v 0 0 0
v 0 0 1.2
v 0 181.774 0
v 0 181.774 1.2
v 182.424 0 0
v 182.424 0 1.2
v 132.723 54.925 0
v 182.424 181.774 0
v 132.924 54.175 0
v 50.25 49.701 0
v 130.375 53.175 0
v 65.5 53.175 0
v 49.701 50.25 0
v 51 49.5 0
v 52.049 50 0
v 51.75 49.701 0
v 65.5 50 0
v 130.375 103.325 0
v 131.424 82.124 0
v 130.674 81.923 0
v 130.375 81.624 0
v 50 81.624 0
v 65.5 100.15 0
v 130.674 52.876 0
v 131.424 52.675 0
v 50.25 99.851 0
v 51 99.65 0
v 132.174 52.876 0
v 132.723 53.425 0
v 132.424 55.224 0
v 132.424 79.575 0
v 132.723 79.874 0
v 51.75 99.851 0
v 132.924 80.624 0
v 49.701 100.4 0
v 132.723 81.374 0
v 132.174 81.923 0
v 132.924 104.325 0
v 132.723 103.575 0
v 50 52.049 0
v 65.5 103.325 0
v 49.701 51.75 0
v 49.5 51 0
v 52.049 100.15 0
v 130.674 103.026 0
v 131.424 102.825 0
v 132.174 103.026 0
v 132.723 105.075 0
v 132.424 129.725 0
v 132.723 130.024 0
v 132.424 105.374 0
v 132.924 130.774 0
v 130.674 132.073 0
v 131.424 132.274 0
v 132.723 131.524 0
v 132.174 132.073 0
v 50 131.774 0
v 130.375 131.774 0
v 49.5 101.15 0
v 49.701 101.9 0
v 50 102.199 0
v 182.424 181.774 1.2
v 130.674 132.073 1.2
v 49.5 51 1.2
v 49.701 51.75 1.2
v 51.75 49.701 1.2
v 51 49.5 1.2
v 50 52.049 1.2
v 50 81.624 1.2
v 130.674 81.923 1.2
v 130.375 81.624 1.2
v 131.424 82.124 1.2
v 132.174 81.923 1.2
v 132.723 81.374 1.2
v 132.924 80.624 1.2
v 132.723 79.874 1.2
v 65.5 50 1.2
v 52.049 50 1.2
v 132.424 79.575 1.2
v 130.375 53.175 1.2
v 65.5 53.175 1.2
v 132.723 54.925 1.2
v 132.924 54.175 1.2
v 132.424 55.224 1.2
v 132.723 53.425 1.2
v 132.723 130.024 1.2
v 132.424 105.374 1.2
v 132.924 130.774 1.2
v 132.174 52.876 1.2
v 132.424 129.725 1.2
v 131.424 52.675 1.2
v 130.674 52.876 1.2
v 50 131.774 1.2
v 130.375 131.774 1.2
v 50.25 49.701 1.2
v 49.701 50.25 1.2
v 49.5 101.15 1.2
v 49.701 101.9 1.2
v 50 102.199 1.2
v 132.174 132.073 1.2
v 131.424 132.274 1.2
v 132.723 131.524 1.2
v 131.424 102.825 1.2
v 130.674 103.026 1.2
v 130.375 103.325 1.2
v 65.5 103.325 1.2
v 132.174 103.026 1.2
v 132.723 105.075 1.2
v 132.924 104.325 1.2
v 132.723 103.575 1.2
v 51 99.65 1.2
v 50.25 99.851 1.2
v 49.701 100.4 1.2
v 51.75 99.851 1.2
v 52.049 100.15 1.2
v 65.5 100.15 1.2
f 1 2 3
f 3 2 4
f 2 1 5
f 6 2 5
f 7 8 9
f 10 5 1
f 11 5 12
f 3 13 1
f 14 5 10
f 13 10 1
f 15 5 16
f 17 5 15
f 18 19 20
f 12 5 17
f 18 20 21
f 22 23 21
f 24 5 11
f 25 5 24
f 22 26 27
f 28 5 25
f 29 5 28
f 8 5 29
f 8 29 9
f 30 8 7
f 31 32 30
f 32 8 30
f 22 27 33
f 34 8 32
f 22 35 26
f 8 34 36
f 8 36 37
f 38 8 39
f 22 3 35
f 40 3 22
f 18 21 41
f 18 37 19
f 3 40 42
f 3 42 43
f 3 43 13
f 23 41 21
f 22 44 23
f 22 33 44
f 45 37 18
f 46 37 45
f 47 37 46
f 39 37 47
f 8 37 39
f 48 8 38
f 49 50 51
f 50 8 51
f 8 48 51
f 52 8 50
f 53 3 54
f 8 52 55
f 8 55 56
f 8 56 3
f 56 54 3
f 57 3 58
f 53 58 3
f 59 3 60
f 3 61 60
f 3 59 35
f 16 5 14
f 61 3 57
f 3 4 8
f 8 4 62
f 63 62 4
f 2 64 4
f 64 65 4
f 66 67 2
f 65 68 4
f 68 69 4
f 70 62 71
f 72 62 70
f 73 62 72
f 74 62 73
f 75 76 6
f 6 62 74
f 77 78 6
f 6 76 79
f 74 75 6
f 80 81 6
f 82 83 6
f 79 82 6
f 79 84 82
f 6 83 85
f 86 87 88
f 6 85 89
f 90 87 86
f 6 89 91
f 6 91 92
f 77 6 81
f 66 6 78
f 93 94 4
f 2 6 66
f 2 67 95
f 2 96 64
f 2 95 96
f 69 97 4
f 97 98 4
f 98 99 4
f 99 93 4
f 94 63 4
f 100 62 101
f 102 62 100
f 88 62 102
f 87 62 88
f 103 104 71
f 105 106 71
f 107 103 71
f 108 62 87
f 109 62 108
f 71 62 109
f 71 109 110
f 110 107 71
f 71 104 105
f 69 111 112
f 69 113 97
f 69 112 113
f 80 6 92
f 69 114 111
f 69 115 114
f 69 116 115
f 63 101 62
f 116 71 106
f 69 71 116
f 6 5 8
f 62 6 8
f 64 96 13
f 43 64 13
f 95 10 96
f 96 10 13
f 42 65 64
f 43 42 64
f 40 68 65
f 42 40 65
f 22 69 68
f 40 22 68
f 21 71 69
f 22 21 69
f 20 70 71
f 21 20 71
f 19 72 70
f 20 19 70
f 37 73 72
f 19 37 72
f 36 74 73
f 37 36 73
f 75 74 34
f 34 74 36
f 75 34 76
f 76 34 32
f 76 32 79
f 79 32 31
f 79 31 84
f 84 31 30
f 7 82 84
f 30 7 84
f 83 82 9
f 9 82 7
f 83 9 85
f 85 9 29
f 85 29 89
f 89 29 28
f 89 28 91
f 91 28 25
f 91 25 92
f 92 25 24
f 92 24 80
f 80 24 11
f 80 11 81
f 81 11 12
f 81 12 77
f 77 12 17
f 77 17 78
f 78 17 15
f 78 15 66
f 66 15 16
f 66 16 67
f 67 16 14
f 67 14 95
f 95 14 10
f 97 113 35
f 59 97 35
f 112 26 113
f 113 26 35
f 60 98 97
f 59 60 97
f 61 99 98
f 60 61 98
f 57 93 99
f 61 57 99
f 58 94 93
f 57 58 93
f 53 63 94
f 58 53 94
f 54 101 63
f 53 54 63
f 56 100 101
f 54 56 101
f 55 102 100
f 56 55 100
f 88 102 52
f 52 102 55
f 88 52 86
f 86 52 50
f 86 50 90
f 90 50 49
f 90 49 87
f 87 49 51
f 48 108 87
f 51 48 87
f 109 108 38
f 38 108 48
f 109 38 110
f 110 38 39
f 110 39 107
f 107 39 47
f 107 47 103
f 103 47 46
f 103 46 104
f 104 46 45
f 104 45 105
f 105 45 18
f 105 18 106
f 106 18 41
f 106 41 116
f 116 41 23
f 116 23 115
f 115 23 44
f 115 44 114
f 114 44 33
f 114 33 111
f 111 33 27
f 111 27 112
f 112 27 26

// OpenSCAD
// Holder for Ormerod prototype differential IR sensor board

thickness=1.2;
xborder=50;
yborder=50;
yrepeat=50.15;	// 1st stencil measured 50.15, frame printed @50mm measured 49.80
height=82.07375;
width=28.09875;
nibWidth=3.175;
nibHeight=15.5;	//actually 14.605
clearance=0.35;
cornerRadius=1.5;
cornerOffset=1;
overlap=1;

module wedge(x,y,z)
{
	polyhedron(
		points=[[0,0,0],[x,0,0],[0,y,0],[0,0,z],[x,0,z],[0,y,z]],
		faces=[[0,2,1],[3,4,5],[0,1,3],[1,4,3],[1,2,4],[2,5,4],[0,3,2],[5,2,3]]
	);
}

module boardCutout()
{
	translate([0,nibWidth,-overlap])
		cube([height+clearance,width+clearance,thickness+2*overlap]);
	translate([0,0,-overlap])
		cube([nibHeight,nibWidth+overlap,thickness+2*overlap]);
	translate([cornerOffset,cornerOffset,-overlap])
		cylinder(r=cornerRadius,h=thickness+2*overlap,$fn=12);
	translate([height+clearance-cornerOffset,nibWidth+cornerOffset,-overlap])
		cylinder(r=cornerRadius,h=thickness+2*overlap,$fn=12);
	translate([height+clearance-cornerOffset,width+nibWidth+clearance-cornerOffset,-overlap])
		cylinder(r=cornerRadius,h=thickness+2*overlap,$fn=12);
}


difference()
{
	cube([height+2*xborder+clearance,width+nibWidth+2*yborder+clearance+yrepeat,thickness]);
	translate([xborder,yborder,0]) boardCutout();
	translate([xborder,yborder+yrepeat,0]) boardCutout();
}

translate([12-overlap,16-overlap,0]) wedge(10+2*overlap,10+2*overlap,thickness);
